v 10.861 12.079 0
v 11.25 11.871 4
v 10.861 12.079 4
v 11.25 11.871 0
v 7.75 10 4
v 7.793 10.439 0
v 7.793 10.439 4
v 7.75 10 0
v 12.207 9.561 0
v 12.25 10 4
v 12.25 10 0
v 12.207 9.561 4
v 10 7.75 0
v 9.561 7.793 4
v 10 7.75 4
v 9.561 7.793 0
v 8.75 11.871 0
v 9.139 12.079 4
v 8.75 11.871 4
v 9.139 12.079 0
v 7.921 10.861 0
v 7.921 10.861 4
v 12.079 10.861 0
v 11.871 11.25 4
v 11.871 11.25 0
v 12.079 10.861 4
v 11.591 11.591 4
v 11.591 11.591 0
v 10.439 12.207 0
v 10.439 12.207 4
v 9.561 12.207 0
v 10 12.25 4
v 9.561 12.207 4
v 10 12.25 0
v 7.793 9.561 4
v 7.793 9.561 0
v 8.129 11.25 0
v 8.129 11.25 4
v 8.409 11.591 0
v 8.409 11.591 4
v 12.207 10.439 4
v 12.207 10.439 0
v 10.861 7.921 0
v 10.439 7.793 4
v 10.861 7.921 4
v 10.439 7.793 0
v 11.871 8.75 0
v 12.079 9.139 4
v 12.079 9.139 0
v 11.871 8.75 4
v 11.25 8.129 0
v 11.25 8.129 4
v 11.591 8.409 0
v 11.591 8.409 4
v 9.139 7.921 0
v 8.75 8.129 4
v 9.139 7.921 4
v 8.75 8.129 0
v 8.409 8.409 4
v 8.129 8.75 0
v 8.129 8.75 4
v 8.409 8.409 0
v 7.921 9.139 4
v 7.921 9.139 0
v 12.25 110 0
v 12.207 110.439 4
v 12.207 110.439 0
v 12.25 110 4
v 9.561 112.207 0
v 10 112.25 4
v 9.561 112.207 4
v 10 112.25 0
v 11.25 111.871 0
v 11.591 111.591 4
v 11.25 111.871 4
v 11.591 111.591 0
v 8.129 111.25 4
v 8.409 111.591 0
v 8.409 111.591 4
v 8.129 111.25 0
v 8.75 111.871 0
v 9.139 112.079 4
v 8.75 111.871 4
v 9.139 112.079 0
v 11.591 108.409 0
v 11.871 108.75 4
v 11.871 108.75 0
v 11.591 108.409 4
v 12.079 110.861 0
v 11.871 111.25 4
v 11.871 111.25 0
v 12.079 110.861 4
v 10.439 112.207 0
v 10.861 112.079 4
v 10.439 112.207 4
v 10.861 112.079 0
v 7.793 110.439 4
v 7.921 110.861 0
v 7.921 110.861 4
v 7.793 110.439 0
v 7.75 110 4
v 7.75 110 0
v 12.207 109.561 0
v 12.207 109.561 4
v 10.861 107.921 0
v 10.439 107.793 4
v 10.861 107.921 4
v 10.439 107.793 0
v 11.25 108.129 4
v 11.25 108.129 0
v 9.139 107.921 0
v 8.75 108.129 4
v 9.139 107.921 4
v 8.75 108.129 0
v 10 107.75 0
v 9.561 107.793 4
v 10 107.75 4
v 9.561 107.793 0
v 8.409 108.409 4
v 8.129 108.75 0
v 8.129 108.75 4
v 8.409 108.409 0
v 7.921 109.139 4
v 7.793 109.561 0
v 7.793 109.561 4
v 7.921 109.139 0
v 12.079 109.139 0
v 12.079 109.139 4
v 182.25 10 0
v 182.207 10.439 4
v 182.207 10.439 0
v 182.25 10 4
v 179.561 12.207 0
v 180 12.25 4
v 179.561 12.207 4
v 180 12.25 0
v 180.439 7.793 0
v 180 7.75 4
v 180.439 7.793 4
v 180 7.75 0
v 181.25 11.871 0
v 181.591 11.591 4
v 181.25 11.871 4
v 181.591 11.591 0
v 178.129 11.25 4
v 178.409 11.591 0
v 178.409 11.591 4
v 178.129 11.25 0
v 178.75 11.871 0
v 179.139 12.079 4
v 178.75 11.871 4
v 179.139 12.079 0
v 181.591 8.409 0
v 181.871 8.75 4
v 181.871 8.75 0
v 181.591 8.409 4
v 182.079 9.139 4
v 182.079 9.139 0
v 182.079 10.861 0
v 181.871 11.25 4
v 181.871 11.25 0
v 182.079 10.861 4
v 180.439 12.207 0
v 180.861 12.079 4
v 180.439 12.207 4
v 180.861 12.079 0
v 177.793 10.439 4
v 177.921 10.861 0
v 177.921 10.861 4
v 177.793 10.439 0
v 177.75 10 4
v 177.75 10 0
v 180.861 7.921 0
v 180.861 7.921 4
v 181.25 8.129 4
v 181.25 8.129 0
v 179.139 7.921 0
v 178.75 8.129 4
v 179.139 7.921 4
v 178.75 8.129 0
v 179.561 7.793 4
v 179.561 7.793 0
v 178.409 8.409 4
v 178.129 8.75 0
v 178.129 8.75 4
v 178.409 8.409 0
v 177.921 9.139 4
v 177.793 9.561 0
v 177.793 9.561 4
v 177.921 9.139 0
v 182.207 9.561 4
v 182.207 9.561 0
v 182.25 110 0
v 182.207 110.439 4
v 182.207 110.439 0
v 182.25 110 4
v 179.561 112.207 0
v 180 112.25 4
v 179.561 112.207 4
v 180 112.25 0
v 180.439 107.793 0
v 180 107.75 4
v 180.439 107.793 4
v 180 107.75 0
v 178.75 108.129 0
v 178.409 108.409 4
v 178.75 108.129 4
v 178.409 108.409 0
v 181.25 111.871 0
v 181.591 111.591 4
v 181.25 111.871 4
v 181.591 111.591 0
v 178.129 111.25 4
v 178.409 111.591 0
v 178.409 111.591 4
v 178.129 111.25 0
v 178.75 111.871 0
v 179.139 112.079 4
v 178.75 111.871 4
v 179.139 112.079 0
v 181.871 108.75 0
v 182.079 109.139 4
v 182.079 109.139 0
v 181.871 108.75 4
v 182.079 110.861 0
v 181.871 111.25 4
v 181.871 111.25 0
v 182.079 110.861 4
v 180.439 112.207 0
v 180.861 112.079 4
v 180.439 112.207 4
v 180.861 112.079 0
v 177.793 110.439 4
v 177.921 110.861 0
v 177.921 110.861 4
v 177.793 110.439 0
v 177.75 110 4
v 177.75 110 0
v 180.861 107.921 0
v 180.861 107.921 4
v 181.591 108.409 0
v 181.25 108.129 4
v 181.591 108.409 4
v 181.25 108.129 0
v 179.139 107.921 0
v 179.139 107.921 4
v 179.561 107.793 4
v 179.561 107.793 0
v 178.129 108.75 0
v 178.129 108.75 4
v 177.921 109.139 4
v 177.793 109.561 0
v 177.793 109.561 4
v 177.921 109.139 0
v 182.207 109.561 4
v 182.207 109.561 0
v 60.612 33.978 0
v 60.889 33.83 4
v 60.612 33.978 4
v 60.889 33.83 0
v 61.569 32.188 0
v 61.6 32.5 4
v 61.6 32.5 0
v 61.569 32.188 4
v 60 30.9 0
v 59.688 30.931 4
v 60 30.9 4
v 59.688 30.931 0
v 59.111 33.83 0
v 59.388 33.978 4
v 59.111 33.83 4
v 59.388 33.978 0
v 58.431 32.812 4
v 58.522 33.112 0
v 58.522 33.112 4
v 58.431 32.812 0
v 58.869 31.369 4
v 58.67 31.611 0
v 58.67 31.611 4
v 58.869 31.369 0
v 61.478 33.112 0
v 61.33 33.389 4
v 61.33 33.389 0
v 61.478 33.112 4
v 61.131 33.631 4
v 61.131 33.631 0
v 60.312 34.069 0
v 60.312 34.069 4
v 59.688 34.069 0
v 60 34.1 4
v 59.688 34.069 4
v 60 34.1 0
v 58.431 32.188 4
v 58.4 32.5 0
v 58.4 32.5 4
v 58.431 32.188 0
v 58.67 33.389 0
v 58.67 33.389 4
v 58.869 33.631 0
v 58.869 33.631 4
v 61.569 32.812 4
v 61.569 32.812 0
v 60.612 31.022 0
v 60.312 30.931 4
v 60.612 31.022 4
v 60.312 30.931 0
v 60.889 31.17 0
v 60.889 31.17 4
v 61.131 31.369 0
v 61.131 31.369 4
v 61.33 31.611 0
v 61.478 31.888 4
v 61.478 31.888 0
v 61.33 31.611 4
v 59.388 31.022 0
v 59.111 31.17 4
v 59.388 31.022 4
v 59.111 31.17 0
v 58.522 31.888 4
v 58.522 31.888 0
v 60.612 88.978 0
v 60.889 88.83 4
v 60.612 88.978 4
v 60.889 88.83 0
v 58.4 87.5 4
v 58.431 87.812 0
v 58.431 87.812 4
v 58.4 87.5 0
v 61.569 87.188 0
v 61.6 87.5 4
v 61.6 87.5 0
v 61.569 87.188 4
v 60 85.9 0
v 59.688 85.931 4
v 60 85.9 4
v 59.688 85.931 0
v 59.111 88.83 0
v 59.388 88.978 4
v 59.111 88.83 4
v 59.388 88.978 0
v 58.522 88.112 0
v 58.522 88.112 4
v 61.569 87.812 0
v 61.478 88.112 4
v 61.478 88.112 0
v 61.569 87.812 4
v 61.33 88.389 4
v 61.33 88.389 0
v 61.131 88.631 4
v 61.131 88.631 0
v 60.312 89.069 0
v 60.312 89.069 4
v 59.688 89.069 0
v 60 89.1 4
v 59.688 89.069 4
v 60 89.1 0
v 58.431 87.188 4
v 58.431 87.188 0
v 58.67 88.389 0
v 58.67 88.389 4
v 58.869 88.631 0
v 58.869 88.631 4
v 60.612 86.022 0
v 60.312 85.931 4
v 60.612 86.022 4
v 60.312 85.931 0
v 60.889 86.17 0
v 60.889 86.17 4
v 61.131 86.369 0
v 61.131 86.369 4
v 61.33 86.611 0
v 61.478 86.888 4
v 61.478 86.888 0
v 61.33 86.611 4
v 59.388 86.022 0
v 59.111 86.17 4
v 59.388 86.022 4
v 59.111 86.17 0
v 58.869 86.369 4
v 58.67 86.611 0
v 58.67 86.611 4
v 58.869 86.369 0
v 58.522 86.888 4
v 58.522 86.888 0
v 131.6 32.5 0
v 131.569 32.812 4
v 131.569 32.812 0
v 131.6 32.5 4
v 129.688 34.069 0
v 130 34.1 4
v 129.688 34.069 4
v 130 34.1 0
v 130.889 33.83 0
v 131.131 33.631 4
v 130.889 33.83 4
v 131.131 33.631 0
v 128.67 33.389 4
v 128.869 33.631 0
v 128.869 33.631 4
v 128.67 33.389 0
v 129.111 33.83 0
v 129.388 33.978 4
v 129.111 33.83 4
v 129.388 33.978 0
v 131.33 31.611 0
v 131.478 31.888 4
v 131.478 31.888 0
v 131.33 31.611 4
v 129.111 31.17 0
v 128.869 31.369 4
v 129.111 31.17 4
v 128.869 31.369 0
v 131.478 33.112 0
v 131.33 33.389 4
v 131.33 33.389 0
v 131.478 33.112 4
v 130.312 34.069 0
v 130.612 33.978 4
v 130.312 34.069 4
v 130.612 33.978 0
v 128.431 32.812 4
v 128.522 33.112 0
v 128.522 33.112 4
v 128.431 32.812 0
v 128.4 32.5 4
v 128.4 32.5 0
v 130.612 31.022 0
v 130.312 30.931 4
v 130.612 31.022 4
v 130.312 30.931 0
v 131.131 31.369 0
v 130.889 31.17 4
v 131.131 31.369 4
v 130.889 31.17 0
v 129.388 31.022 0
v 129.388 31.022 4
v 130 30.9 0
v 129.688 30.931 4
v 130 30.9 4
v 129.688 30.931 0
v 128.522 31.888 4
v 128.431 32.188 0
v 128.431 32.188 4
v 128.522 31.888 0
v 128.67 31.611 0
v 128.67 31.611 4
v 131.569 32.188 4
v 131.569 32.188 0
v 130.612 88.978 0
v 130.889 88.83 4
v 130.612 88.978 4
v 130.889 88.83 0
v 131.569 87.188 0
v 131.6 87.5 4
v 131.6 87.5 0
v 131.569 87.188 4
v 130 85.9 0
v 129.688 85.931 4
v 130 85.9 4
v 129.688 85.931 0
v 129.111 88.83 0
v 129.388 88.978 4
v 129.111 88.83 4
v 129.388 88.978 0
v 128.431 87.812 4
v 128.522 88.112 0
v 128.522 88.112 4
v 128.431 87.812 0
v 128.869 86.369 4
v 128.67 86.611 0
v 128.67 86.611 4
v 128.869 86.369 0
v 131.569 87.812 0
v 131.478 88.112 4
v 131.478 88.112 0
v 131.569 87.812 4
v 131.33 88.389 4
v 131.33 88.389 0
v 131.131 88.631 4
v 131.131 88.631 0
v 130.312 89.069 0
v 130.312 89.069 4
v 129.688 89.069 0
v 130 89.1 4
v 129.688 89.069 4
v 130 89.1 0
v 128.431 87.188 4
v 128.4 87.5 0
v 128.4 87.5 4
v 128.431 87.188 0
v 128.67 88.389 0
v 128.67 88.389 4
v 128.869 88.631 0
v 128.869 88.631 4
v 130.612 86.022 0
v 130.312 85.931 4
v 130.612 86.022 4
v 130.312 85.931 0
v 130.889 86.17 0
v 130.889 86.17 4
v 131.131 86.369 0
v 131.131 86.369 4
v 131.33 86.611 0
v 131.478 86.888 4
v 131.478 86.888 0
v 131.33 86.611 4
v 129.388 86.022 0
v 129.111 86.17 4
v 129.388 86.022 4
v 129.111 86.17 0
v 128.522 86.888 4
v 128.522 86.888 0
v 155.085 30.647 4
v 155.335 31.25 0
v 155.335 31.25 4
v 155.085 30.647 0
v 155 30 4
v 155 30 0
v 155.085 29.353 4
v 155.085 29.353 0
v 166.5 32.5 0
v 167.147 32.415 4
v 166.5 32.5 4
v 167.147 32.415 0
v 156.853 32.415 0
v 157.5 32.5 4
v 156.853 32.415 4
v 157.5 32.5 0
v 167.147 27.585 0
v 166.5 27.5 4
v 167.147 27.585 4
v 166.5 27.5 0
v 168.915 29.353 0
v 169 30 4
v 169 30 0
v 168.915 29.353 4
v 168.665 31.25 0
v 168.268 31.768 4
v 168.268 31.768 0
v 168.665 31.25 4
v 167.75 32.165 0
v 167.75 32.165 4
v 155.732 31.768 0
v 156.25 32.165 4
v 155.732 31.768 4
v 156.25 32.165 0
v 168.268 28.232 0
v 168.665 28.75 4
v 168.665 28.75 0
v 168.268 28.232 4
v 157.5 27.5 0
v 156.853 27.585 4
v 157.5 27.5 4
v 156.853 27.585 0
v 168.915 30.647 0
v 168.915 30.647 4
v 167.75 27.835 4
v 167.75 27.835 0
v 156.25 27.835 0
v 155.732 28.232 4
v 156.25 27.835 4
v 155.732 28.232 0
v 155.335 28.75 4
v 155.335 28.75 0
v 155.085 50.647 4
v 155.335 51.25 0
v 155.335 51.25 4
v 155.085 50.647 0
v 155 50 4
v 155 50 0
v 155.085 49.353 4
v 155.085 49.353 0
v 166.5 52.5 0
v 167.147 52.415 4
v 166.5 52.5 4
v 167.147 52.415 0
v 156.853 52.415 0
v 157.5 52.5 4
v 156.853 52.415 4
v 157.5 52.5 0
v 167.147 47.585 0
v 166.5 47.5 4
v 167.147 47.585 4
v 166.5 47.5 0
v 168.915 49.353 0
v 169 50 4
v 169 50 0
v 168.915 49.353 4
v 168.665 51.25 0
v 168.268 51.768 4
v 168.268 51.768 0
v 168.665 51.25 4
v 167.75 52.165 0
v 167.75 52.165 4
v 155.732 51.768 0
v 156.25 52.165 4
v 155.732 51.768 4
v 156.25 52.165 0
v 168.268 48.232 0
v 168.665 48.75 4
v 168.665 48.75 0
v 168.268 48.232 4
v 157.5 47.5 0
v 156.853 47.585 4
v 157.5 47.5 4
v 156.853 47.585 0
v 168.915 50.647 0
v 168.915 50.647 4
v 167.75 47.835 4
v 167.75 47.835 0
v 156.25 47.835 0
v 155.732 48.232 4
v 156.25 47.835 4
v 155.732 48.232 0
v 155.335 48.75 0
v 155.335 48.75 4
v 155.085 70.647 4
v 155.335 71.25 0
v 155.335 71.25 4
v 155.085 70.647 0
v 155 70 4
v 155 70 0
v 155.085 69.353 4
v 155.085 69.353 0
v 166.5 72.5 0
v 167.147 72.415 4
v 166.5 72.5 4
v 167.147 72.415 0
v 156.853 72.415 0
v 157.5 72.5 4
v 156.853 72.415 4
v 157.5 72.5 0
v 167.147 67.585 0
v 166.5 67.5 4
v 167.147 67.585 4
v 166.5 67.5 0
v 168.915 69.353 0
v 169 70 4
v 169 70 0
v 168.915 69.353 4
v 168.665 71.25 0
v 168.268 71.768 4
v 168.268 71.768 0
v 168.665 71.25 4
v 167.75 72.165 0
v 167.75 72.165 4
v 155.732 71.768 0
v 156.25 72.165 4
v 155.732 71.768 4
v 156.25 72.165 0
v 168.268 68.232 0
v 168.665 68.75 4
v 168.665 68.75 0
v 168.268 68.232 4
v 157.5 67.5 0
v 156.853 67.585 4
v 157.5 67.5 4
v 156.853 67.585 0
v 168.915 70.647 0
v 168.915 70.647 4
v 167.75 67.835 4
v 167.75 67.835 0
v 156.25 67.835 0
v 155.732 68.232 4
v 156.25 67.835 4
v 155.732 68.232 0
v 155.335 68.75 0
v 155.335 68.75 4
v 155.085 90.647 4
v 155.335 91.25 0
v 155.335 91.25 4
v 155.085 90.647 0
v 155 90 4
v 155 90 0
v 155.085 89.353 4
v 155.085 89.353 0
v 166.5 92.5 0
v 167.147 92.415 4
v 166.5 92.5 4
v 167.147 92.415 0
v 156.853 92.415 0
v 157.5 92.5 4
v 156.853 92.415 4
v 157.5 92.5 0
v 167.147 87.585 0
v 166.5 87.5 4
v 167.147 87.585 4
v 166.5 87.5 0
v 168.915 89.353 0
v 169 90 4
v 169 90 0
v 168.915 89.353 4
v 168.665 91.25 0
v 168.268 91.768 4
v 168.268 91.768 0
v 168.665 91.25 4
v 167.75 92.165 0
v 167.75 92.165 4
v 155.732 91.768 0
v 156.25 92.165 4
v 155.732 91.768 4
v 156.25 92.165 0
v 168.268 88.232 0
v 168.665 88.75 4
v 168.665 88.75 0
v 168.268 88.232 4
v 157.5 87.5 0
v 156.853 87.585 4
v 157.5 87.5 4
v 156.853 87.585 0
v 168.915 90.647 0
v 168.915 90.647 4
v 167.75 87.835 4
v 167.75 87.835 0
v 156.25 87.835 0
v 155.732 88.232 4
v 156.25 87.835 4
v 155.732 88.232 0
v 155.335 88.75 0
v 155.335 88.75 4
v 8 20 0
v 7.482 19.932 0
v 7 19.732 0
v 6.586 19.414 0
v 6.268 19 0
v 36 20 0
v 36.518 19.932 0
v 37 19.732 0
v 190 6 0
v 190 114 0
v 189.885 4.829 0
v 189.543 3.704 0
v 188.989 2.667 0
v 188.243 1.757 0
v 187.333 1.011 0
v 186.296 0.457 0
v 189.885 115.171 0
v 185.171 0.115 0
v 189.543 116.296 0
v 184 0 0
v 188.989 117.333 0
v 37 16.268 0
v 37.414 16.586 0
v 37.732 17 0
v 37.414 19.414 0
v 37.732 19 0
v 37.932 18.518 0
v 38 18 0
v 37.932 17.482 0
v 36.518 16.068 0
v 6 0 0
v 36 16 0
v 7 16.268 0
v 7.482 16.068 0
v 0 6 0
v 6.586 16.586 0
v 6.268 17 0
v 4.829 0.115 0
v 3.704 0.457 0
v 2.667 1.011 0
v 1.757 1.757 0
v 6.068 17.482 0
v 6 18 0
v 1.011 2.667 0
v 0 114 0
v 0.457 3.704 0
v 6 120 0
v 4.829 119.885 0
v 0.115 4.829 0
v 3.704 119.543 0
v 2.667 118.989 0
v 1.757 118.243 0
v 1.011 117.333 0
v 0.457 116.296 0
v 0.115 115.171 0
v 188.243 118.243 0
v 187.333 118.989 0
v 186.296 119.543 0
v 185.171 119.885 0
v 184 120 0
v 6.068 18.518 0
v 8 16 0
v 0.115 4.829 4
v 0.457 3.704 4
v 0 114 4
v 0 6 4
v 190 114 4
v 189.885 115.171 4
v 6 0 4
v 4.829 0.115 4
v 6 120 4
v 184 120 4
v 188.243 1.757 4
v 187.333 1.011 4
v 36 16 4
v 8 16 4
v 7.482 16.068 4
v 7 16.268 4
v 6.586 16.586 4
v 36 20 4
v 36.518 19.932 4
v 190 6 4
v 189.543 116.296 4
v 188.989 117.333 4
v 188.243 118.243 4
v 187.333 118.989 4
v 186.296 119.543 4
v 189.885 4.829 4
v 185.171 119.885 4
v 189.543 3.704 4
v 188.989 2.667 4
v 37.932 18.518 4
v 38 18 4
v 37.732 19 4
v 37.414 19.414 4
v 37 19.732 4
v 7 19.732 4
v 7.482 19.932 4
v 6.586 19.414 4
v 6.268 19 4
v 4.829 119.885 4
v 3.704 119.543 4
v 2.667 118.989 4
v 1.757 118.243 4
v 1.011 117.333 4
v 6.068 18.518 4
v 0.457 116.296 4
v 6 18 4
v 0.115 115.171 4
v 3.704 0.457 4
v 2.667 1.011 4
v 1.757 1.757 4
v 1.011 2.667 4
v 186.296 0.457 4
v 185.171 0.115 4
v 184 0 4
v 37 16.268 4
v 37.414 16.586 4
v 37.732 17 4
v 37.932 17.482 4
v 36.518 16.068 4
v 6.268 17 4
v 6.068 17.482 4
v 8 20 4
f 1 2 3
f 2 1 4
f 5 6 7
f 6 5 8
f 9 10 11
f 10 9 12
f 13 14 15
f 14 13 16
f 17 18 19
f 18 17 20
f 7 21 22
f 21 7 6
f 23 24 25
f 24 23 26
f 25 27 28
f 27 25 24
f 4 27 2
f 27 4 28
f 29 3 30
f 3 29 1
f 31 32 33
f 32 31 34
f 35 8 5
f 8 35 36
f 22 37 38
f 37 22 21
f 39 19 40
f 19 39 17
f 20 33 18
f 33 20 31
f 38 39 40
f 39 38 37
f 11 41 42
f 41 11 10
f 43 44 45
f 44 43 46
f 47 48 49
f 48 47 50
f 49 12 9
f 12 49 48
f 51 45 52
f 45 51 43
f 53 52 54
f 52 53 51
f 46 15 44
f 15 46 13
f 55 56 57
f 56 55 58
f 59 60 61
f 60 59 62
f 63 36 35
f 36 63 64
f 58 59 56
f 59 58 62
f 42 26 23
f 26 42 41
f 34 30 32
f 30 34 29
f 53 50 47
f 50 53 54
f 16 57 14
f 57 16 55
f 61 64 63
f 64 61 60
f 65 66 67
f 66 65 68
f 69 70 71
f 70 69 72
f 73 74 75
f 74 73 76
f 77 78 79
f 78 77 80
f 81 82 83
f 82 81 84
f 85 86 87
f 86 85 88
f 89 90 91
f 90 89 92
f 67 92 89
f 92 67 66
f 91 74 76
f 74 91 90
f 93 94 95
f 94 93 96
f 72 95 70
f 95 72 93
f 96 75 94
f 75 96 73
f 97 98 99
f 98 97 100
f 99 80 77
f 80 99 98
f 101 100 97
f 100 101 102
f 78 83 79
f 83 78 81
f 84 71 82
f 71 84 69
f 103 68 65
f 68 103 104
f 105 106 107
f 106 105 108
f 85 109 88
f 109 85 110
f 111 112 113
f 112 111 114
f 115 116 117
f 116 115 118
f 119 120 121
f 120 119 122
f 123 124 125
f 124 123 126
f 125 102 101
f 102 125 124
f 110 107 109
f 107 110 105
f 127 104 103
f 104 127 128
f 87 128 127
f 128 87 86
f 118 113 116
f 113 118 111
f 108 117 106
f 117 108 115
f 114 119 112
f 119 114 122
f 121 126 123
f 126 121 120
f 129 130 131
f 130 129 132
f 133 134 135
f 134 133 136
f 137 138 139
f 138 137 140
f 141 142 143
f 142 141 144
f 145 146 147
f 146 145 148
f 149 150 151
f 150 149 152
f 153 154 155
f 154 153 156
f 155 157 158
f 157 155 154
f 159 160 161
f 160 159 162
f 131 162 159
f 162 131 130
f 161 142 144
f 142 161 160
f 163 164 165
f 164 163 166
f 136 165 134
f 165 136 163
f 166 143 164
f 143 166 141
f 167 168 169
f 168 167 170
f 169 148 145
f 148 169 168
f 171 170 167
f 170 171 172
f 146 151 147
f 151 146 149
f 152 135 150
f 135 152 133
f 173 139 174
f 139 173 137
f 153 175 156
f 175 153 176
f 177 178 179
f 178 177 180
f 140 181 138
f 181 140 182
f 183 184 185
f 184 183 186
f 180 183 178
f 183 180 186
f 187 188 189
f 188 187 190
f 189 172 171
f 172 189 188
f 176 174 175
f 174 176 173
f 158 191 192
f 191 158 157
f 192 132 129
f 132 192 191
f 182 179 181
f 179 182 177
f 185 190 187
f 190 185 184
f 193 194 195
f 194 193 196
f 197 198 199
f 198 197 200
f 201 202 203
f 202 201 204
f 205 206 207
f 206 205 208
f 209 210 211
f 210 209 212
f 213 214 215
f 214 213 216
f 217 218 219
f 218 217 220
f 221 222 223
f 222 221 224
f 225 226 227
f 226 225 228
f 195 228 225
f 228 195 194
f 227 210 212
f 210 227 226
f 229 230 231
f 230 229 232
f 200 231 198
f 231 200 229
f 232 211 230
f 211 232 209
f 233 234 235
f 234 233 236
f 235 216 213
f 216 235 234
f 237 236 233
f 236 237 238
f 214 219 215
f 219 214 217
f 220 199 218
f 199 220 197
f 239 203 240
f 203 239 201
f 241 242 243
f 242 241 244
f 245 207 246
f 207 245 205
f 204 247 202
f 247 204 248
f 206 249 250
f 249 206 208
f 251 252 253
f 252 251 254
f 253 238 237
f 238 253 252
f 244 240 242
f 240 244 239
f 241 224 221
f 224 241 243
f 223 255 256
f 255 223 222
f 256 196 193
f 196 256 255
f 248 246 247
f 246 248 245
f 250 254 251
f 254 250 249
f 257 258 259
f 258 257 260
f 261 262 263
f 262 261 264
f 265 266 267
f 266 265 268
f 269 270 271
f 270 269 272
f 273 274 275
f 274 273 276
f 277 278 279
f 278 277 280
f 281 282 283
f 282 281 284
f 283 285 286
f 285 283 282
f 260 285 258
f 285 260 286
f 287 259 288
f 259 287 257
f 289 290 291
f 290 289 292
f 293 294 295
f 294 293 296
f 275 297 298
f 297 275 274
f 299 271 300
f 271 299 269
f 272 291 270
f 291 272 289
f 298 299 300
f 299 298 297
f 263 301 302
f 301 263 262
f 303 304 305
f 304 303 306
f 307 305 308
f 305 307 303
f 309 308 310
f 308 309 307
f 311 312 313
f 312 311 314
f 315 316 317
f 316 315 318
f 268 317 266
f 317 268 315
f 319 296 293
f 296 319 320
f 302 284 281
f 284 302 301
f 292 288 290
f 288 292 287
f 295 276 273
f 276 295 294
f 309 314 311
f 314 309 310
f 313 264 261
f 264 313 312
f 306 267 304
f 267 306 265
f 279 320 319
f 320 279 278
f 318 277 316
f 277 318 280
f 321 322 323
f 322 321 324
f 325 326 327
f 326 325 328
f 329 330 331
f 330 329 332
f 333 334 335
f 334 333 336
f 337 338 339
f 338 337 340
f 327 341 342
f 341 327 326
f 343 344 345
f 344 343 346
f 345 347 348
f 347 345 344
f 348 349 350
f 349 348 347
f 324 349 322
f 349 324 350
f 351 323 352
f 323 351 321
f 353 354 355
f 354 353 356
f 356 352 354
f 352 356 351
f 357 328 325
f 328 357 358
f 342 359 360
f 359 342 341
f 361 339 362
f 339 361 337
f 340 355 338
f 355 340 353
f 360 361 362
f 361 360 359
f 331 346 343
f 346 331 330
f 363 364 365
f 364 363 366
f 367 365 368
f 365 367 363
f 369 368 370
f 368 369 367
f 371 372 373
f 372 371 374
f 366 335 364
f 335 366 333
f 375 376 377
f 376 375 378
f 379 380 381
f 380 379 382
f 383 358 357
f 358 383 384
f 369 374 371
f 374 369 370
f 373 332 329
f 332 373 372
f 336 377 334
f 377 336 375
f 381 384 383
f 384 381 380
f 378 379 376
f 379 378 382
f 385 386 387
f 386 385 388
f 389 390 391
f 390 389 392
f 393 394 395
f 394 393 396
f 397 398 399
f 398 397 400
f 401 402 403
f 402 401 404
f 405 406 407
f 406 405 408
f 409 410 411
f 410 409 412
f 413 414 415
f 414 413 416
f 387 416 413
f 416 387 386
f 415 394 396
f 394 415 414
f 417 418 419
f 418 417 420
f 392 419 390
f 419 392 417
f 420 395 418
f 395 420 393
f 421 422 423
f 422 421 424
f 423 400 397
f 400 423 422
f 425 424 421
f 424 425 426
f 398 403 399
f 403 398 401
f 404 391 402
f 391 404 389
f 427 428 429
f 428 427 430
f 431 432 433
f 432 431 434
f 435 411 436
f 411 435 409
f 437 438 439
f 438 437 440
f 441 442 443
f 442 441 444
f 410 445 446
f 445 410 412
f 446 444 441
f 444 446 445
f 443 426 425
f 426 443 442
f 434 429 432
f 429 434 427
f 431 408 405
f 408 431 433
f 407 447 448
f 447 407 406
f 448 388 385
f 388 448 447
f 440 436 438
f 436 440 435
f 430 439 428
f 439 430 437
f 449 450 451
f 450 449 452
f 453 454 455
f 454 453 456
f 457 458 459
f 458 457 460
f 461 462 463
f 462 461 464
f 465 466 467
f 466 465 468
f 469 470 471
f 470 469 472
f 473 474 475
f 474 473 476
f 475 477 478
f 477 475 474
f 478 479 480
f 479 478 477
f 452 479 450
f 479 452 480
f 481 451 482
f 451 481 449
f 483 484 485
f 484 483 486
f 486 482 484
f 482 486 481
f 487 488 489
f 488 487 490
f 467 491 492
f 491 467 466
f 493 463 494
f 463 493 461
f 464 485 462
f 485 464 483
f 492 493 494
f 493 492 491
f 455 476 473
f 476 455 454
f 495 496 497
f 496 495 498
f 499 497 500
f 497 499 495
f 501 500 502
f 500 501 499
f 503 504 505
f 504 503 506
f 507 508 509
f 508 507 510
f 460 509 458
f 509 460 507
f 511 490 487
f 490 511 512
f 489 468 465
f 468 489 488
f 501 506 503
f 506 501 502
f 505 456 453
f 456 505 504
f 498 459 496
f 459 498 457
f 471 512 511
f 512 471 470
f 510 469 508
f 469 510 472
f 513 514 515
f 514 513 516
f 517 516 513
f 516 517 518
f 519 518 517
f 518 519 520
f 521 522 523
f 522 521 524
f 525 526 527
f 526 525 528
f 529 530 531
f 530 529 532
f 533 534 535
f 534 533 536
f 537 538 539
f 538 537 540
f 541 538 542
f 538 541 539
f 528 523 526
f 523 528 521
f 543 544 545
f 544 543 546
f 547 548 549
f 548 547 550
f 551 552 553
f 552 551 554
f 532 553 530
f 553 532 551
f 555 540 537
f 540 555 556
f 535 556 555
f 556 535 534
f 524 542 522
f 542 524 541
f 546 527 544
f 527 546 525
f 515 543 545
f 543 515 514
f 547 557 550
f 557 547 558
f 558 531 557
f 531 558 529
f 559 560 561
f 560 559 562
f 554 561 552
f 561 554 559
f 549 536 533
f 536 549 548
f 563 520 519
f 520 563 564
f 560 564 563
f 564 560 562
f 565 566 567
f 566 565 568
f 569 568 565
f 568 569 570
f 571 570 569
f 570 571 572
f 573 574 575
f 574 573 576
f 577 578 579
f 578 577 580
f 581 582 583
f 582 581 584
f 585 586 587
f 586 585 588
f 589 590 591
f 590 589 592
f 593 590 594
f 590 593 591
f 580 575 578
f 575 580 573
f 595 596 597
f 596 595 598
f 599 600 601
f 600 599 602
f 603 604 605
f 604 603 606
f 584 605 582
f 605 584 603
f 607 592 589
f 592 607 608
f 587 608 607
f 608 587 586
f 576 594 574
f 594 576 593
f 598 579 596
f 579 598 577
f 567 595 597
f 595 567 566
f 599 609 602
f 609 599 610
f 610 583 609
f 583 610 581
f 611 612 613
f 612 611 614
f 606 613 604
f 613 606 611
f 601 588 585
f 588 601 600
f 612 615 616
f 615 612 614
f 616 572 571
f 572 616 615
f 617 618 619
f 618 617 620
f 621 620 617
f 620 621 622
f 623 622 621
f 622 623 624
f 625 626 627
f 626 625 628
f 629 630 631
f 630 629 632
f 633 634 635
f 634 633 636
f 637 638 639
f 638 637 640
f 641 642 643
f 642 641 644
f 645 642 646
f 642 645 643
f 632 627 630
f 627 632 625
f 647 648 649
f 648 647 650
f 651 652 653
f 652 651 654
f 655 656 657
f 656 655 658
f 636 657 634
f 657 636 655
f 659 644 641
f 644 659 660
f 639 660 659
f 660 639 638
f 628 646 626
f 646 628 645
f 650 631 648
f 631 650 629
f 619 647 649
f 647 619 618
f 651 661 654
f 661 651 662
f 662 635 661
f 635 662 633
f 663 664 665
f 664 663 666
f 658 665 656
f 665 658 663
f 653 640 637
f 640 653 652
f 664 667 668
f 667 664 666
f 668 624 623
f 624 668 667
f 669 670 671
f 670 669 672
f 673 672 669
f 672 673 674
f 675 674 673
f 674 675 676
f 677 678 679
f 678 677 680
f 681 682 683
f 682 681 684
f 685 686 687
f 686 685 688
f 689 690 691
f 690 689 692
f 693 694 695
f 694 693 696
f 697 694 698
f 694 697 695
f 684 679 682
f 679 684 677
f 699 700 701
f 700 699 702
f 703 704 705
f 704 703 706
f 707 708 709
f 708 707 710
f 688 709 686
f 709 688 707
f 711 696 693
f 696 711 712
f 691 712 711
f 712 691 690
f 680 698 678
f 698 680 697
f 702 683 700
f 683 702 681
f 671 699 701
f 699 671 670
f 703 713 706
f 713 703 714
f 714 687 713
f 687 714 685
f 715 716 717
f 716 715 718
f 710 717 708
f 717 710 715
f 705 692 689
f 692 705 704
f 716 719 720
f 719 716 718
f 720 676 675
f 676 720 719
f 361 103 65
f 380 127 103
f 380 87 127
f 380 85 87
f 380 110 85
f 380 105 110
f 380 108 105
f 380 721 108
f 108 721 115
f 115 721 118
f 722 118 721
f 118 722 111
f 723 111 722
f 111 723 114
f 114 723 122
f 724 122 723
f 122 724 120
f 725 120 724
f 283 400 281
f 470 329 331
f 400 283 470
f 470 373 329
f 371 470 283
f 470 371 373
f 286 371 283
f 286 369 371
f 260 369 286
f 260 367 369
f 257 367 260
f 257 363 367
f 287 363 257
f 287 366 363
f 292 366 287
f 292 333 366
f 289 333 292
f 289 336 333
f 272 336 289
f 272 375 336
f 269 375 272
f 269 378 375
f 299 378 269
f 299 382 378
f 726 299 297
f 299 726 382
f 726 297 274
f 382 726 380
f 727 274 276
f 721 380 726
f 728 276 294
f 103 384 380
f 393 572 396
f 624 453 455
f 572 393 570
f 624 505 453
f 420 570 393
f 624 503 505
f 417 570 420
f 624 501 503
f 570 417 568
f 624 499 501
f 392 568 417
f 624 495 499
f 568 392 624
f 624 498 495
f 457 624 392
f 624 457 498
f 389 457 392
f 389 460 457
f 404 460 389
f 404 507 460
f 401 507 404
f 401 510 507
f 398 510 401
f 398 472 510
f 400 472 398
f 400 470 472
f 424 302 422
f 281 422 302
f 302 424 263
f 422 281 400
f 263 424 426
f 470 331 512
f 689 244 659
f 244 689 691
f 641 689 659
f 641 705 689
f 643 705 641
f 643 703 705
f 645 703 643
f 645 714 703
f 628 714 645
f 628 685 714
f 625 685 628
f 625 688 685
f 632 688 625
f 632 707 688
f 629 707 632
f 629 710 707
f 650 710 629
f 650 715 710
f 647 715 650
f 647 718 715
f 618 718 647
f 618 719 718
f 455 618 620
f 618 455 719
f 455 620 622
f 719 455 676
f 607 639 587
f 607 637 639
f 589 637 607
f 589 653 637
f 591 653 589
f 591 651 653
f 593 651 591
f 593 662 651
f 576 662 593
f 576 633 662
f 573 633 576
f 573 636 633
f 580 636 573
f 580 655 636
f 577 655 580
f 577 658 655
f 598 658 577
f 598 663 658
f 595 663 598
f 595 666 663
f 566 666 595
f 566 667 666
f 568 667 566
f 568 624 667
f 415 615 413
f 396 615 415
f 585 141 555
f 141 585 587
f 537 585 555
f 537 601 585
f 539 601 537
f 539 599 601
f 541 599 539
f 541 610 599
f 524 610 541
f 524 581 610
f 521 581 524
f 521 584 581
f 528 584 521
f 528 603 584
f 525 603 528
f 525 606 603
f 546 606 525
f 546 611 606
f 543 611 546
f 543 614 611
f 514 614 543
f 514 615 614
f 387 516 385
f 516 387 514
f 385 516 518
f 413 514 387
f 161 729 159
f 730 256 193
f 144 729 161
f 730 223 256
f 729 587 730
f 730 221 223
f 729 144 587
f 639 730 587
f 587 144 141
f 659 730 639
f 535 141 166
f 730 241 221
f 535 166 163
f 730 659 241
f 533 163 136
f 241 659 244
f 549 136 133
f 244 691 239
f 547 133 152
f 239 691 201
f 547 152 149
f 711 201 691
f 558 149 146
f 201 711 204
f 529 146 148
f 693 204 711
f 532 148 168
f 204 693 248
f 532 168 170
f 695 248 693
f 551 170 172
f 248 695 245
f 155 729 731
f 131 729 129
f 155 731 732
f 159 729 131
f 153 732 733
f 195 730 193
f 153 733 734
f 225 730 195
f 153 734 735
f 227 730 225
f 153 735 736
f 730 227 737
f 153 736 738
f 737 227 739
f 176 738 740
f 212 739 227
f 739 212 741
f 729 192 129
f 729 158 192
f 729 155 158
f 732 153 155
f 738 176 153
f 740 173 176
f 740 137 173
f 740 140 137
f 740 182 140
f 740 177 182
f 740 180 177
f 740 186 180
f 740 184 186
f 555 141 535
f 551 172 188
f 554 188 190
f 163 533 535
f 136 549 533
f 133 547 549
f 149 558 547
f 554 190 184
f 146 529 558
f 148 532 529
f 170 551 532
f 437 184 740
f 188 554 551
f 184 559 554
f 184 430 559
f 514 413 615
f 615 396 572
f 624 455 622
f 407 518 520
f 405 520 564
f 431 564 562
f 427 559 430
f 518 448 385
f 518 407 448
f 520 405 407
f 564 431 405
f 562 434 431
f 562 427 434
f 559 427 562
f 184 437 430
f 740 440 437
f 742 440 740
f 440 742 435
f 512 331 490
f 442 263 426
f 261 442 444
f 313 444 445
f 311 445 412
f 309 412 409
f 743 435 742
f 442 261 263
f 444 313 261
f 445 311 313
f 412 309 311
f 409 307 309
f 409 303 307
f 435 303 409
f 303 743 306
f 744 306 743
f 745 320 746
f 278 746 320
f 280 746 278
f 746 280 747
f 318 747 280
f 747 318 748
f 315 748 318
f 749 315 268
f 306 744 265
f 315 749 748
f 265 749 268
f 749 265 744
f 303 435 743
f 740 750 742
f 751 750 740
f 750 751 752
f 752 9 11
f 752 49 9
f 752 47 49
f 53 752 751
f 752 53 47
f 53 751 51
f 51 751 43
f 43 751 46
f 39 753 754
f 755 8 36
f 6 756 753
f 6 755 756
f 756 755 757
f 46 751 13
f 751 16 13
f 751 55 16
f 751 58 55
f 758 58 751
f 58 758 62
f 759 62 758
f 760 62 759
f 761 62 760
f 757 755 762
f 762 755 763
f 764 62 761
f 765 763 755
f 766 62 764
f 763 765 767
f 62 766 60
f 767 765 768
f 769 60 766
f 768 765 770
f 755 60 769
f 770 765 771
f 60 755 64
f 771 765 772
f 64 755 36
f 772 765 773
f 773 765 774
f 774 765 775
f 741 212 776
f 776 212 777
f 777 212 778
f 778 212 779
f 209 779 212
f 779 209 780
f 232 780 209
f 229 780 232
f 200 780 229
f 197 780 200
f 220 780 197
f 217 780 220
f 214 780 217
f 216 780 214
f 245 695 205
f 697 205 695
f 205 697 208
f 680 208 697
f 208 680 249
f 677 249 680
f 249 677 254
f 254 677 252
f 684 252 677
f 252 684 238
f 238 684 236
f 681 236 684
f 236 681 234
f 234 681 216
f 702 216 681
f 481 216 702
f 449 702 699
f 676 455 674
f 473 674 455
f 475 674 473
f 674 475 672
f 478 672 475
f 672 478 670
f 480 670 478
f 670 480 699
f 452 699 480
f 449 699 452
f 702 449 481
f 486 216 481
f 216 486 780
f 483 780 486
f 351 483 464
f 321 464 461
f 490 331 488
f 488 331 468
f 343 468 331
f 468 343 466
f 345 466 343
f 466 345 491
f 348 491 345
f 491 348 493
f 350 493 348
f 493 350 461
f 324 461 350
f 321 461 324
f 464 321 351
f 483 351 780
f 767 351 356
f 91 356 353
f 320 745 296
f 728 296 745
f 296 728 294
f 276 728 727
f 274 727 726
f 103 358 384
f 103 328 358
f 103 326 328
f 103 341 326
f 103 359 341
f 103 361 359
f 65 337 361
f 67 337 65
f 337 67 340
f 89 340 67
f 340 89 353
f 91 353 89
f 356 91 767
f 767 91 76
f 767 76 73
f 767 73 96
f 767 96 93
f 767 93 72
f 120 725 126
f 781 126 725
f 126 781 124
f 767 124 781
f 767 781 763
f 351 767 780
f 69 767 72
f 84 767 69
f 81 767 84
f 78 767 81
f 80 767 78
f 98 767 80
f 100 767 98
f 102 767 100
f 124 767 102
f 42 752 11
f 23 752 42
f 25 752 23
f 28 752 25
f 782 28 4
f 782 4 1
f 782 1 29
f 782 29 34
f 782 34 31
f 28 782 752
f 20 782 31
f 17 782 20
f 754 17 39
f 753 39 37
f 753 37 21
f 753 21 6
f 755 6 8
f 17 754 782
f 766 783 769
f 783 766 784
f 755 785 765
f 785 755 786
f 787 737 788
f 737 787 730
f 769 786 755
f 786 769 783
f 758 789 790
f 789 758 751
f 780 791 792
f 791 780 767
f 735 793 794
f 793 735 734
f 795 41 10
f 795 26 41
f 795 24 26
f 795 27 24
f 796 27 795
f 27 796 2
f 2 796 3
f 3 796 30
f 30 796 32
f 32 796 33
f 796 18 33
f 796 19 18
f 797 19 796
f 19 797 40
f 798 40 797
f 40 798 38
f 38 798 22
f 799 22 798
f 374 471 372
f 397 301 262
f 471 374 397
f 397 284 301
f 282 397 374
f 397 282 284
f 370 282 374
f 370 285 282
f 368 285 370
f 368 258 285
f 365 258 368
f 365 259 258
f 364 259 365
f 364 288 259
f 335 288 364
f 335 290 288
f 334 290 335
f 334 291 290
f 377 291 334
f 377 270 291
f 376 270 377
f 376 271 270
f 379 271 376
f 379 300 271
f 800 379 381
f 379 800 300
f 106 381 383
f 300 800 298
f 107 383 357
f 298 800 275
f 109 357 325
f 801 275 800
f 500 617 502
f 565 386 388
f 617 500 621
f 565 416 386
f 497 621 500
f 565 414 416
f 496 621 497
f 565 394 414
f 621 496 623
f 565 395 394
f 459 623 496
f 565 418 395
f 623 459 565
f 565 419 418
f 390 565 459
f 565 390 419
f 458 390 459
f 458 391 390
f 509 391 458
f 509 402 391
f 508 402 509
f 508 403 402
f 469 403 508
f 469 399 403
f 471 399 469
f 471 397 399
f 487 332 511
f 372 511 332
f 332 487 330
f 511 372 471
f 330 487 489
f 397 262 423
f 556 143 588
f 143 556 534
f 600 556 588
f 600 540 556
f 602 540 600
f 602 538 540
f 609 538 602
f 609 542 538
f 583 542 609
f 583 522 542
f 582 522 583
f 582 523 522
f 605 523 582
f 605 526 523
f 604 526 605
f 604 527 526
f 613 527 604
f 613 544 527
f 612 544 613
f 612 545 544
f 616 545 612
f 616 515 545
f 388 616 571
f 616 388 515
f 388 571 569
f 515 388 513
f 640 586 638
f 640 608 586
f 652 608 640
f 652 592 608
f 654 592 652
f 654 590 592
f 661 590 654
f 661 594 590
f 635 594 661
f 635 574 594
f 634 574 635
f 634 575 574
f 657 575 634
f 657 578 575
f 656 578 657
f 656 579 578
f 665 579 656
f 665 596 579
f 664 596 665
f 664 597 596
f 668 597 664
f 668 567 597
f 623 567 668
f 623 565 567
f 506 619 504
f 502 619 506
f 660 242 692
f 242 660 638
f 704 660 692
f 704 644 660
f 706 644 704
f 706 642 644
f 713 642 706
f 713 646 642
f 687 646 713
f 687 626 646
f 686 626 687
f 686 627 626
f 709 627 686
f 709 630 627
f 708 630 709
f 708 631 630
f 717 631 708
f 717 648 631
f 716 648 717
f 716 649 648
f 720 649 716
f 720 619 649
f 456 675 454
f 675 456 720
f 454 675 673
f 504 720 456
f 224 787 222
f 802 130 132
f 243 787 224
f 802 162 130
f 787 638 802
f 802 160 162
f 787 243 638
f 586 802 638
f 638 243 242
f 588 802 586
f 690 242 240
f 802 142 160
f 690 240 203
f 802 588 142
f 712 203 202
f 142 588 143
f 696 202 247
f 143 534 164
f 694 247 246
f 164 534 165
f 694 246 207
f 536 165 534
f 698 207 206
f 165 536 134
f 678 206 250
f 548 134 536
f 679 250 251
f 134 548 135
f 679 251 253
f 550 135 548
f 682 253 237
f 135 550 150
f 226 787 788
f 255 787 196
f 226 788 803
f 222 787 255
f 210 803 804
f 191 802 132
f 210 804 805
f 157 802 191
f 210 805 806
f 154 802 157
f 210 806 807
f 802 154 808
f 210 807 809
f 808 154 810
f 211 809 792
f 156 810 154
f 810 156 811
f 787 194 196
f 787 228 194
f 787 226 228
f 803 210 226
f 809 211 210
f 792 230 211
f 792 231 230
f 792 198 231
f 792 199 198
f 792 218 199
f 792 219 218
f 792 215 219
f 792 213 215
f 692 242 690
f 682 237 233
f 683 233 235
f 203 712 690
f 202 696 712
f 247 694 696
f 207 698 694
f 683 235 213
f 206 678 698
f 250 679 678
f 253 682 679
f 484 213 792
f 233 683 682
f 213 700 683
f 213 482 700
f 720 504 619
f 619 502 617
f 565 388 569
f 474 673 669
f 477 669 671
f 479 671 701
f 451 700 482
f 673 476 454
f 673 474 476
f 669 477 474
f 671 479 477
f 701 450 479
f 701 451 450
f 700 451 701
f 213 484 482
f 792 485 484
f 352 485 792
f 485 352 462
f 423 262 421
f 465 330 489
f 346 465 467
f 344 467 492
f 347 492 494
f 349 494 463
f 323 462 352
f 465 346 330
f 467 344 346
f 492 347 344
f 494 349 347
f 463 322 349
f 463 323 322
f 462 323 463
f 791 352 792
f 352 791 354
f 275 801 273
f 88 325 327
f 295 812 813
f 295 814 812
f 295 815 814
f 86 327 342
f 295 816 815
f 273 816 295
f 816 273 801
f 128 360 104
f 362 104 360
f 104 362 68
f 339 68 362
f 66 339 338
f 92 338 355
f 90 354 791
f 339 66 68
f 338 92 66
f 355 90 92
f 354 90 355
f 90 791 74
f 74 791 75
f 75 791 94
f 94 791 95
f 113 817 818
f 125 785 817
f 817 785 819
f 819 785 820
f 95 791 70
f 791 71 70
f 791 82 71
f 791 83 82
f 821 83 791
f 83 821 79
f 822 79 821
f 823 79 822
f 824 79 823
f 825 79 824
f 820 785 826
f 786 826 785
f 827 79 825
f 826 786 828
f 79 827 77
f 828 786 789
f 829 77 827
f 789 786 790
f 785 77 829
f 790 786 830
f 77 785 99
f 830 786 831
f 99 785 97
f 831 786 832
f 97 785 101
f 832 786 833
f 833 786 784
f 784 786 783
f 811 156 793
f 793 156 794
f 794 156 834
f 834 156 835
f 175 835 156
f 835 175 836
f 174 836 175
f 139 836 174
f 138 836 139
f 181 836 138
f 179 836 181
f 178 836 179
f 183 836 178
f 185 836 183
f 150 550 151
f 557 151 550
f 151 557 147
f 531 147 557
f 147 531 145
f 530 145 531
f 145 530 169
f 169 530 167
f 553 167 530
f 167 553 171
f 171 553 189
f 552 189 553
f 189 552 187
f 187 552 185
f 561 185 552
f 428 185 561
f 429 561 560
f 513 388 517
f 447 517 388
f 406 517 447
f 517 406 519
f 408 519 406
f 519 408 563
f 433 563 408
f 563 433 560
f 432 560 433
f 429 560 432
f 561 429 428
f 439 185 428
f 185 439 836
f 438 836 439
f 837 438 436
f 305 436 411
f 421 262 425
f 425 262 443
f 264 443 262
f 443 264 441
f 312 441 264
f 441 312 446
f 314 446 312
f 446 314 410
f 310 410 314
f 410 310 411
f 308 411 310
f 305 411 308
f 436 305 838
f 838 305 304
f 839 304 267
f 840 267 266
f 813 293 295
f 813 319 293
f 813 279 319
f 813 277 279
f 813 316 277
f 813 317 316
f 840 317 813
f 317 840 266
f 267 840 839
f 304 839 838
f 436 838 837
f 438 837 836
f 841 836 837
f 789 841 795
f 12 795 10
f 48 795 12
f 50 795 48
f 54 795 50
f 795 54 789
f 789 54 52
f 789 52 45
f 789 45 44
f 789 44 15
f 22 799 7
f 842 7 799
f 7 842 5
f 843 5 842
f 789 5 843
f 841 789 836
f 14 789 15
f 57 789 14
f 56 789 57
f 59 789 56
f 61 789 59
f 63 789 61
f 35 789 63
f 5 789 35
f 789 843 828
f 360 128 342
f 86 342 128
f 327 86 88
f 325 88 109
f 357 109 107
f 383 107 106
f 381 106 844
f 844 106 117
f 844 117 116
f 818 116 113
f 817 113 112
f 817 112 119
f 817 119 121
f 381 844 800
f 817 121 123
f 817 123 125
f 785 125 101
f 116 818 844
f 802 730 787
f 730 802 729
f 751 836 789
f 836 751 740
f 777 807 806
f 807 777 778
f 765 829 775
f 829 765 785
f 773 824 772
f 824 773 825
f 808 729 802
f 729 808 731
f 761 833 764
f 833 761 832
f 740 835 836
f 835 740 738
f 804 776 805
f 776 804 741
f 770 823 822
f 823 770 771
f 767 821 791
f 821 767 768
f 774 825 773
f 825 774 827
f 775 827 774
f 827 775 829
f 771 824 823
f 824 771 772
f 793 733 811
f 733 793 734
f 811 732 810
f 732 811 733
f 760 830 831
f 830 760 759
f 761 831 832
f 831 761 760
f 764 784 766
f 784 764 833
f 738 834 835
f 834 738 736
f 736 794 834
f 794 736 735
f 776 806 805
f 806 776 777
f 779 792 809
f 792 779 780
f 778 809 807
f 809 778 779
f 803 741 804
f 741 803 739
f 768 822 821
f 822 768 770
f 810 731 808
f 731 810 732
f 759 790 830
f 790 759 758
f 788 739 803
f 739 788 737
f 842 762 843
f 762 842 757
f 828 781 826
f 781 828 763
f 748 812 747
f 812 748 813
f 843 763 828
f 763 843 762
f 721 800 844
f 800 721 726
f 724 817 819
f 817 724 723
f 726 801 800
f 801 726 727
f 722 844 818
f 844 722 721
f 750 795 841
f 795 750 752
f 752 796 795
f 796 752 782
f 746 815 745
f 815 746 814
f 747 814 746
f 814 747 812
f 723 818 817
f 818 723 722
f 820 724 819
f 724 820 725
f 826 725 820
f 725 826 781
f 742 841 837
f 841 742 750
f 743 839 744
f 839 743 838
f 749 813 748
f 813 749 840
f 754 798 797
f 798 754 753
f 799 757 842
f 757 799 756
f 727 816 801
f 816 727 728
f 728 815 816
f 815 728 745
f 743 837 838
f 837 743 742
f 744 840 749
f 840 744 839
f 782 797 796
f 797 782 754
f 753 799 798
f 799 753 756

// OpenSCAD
// MULO-REX STM32 controller carrier plate
// Baseline: electronics carrier only, not GX50 engine mount.

plate_length = 190;
plate_width = 120;
plate_thickness = 4;
corner_radius = 6;

box_hole_x = 170;
box_hole_y = 100;
box_hole_d = 4.5;

nucleo_hole_x = 70;
nucleo_hole_y = 55;
nucleo_hole_d = 3.2;

strain_slot_w = 14;
strain_slot_h = 5;

export_2d = false;

module rounded_plate_2d(length, width, radius) {
    hull() {
        translate([radius, radius]) circle(r = radius, $fn = 32);
        translate([length - radius, radius]) circle(r = radius, $fn = 32);
        translate([radius, width - radius]) circle(r = radius, $fn = 32);
        translate([length - radius, width - radius]) circle(r = radius, $fn = 32);
    }
}

module slot_2d(w, h) {
    hull() {
        translate([-w / 2 + h / 2, 0]) circle(d = h, $fn = 24);
        translate([w / 2 - h / 2, 0]) circle(d = h, $fn = 24);
    }
}

module carrier_plate_3d() {
    difference() {
        linear_extrude(height = plate_thickness)
            rounded_plate_2d(plate_length, plate_width, corner_radius);

        // Box mounting holes, M4 clearance.
        for (x = [(plate_length - box_hole_x) / 2, (plate_length + box_hole_x) / 2])
            for (y = [(plate_width - box_hole_y) / 2, (plate_width + box_hole_y) / 2])
                translate([x, y, -1]) cylinder(d = box_hole_d, h = plate_thickness + 2, $fn = 32);

        // STM32/Nucleo carrier standoffs, M3 clearance.
        for (x = [(plate_length - nucleo_hole_x) / 2, (plate_length + nucleo_hole_x) / 2])
            for (y = [(plate_width - nucleo_hole_y) / 2, (plate_width + nucleo_hole_y) / 2])
                translate([x, y, -1]) cylinder(d = nucleo_hole_d, h = plate_thickness + 2, $fn = 32);

        // Cable tie/strain relief slots near connector edge.
        for (y = [30, 50, 70, 90])
            translate([plate_length - 28, y, -1])
                linear_extrude(height = plate_thickness + 2)
                    slot_2d(strain_slot_w, strain_slot_h);

        // Label/inspection window, not structural.
        translate([22, 18, -1])
            linear_extrude(height = plate_thickness + 2)
                slot_2d(32, 4);
    }
}

if (export_2d) {
    projection(cut = false) carrier_plate_3d();
} else {
    carrier_plate_3d();
}
